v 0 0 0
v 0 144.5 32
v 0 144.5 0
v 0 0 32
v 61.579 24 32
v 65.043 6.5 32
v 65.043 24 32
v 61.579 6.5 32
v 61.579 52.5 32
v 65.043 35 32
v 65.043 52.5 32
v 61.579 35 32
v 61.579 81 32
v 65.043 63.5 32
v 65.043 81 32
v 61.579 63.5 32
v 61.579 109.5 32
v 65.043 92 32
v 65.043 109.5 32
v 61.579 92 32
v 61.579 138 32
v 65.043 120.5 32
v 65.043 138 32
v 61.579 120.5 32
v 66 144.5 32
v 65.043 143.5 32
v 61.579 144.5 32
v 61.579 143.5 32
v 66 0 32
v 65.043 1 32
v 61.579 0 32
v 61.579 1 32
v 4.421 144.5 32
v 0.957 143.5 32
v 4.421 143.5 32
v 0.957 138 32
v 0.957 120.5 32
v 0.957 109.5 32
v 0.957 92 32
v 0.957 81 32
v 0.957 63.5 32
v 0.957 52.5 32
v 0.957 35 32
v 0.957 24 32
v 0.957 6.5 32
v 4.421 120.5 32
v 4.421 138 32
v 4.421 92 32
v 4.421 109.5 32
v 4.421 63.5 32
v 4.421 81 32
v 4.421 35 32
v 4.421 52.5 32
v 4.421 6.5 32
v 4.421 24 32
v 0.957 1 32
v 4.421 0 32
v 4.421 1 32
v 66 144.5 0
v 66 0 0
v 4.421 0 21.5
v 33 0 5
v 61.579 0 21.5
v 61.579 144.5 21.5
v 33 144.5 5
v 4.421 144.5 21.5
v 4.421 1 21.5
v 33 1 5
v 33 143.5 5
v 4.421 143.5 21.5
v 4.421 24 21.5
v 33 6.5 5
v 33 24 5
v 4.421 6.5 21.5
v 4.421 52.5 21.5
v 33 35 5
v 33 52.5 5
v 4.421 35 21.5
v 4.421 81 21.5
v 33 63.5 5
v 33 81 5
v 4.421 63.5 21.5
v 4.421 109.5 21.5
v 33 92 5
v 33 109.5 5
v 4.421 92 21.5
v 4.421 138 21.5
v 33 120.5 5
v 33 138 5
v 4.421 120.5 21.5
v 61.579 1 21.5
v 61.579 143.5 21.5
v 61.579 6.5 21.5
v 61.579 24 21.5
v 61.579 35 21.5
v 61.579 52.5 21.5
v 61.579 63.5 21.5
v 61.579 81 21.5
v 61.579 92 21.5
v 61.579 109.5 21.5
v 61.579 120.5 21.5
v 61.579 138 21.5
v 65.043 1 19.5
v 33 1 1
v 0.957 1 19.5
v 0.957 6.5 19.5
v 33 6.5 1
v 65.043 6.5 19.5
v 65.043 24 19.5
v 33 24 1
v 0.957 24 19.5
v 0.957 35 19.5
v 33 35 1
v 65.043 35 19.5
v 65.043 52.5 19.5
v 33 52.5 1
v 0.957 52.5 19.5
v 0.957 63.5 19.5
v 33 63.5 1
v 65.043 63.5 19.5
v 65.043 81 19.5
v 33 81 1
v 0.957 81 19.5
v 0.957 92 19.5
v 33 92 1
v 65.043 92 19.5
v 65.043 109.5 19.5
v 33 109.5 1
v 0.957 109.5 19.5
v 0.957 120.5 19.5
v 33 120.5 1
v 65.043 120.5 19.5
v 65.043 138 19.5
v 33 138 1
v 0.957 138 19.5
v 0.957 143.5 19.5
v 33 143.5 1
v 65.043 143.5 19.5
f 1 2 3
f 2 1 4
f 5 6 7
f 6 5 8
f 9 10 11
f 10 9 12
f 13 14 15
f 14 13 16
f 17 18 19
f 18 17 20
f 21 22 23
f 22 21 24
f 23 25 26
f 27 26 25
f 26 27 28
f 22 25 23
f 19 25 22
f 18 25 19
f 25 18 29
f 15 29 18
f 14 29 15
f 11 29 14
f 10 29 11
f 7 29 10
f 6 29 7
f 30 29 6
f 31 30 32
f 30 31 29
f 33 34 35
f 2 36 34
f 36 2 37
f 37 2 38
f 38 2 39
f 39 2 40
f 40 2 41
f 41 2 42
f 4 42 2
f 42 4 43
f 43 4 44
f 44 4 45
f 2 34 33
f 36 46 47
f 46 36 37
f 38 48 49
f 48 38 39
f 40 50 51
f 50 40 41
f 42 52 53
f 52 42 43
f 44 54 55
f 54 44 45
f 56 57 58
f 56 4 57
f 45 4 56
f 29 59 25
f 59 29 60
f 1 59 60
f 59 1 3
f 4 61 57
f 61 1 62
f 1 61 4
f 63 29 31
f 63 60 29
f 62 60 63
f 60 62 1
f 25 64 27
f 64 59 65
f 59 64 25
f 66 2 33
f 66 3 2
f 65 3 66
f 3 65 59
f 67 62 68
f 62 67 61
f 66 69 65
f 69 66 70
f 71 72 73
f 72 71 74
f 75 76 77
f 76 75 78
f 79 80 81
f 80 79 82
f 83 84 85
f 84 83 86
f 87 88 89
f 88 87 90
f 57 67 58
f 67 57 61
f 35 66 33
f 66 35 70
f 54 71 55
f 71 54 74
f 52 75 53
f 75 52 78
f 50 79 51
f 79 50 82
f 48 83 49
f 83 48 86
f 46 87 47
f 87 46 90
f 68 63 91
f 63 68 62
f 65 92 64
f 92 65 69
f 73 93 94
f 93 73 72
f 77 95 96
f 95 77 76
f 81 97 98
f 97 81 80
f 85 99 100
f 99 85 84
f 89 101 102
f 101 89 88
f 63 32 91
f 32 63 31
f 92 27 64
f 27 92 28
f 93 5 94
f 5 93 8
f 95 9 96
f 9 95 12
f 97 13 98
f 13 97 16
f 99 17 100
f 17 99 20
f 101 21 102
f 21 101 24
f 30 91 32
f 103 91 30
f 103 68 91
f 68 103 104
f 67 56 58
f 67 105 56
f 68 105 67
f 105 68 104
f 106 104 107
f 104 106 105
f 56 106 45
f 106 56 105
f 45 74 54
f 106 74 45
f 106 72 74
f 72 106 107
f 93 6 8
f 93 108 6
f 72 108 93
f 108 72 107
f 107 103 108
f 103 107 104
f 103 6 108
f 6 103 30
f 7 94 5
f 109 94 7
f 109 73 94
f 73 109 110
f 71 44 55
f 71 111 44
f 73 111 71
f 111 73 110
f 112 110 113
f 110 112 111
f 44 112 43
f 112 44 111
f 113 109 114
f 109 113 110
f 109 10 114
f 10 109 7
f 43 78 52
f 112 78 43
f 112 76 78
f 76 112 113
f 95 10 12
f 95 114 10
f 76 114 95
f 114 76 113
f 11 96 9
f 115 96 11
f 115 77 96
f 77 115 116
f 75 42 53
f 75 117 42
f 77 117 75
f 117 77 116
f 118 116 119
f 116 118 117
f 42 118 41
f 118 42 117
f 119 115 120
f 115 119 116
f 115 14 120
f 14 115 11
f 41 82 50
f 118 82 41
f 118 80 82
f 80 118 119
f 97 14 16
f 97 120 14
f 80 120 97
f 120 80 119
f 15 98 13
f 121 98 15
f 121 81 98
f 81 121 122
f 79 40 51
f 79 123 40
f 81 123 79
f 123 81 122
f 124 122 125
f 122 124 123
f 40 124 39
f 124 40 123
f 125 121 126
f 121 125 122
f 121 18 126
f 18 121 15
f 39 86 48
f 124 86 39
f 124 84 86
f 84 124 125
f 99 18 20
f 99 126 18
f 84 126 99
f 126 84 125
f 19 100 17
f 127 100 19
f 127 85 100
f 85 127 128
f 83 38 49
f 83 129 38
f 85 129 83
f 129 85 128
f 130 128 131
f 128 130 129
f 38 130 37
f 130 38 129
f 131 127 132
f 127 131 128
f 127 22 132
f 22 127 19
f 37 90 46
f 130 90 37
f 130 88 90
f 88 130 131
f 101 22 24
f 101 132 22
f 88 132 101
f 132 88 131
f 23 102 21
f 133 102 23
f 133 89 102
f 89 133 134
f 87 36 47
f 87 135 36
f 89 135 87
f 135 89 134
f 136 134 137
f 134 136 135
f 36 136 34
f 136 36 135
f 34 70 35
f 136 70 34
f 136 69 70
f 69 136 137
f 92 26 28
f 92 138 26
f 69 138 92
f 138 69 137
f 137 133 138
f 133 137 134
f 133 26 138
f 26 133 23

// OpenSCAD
$fn=200;
THICK = 1;

TILE_L = 23;
TILE_COUNT = 16;

BOX_W = 64;
BOX_L = 142.5;
BOX_H = 32;

difference() {
    cube(size = [
        BOX_W + (THICK * 2),
        BOX_L + (THICK * 2), 
        BOX_H]);

    translate([33, -5, 38])
        rotate([0, 90, 90]) 
            cylinder(h = 300, r = 33, $fn=6);

    tile_slot(1);
    tile_slot(1 + TILE_L);

    tile_slot(6.5 + TILE_L);
    tile_slot(6.5 + (TILE_L * 2));

    tile_slot(12 + (TILE_L * 2));
    tile_slot(12 + (TILE_L * 3));

    tile_slot(17.5 + (TILE_L * 3));
    tile_slot(17.5 + (TILE_L * 4));

    tile_slot(23 + (TILE_L * 4));
    tile_slot(23 + (TILE_L * 5));

    // tile_slot(38.5 + (TILE_L * 5));
    // tile_slot(38.5 + (TILE_L * 6));

    // tile_slot(46 + (TILE_L * 6));
    // tile_slot(46 + (TILE_L * 7));

    // tile_slot(53.5 + (TILE_L * 7));
    // tile_slot(53.5 + (TILE_L * 8));
}

module tile_slot(y) {
    translate([33, y, 38])
        rotate([0, 90, 90]) 
            cylinder(h = 5.5, r = 37, $fn=6);
}
